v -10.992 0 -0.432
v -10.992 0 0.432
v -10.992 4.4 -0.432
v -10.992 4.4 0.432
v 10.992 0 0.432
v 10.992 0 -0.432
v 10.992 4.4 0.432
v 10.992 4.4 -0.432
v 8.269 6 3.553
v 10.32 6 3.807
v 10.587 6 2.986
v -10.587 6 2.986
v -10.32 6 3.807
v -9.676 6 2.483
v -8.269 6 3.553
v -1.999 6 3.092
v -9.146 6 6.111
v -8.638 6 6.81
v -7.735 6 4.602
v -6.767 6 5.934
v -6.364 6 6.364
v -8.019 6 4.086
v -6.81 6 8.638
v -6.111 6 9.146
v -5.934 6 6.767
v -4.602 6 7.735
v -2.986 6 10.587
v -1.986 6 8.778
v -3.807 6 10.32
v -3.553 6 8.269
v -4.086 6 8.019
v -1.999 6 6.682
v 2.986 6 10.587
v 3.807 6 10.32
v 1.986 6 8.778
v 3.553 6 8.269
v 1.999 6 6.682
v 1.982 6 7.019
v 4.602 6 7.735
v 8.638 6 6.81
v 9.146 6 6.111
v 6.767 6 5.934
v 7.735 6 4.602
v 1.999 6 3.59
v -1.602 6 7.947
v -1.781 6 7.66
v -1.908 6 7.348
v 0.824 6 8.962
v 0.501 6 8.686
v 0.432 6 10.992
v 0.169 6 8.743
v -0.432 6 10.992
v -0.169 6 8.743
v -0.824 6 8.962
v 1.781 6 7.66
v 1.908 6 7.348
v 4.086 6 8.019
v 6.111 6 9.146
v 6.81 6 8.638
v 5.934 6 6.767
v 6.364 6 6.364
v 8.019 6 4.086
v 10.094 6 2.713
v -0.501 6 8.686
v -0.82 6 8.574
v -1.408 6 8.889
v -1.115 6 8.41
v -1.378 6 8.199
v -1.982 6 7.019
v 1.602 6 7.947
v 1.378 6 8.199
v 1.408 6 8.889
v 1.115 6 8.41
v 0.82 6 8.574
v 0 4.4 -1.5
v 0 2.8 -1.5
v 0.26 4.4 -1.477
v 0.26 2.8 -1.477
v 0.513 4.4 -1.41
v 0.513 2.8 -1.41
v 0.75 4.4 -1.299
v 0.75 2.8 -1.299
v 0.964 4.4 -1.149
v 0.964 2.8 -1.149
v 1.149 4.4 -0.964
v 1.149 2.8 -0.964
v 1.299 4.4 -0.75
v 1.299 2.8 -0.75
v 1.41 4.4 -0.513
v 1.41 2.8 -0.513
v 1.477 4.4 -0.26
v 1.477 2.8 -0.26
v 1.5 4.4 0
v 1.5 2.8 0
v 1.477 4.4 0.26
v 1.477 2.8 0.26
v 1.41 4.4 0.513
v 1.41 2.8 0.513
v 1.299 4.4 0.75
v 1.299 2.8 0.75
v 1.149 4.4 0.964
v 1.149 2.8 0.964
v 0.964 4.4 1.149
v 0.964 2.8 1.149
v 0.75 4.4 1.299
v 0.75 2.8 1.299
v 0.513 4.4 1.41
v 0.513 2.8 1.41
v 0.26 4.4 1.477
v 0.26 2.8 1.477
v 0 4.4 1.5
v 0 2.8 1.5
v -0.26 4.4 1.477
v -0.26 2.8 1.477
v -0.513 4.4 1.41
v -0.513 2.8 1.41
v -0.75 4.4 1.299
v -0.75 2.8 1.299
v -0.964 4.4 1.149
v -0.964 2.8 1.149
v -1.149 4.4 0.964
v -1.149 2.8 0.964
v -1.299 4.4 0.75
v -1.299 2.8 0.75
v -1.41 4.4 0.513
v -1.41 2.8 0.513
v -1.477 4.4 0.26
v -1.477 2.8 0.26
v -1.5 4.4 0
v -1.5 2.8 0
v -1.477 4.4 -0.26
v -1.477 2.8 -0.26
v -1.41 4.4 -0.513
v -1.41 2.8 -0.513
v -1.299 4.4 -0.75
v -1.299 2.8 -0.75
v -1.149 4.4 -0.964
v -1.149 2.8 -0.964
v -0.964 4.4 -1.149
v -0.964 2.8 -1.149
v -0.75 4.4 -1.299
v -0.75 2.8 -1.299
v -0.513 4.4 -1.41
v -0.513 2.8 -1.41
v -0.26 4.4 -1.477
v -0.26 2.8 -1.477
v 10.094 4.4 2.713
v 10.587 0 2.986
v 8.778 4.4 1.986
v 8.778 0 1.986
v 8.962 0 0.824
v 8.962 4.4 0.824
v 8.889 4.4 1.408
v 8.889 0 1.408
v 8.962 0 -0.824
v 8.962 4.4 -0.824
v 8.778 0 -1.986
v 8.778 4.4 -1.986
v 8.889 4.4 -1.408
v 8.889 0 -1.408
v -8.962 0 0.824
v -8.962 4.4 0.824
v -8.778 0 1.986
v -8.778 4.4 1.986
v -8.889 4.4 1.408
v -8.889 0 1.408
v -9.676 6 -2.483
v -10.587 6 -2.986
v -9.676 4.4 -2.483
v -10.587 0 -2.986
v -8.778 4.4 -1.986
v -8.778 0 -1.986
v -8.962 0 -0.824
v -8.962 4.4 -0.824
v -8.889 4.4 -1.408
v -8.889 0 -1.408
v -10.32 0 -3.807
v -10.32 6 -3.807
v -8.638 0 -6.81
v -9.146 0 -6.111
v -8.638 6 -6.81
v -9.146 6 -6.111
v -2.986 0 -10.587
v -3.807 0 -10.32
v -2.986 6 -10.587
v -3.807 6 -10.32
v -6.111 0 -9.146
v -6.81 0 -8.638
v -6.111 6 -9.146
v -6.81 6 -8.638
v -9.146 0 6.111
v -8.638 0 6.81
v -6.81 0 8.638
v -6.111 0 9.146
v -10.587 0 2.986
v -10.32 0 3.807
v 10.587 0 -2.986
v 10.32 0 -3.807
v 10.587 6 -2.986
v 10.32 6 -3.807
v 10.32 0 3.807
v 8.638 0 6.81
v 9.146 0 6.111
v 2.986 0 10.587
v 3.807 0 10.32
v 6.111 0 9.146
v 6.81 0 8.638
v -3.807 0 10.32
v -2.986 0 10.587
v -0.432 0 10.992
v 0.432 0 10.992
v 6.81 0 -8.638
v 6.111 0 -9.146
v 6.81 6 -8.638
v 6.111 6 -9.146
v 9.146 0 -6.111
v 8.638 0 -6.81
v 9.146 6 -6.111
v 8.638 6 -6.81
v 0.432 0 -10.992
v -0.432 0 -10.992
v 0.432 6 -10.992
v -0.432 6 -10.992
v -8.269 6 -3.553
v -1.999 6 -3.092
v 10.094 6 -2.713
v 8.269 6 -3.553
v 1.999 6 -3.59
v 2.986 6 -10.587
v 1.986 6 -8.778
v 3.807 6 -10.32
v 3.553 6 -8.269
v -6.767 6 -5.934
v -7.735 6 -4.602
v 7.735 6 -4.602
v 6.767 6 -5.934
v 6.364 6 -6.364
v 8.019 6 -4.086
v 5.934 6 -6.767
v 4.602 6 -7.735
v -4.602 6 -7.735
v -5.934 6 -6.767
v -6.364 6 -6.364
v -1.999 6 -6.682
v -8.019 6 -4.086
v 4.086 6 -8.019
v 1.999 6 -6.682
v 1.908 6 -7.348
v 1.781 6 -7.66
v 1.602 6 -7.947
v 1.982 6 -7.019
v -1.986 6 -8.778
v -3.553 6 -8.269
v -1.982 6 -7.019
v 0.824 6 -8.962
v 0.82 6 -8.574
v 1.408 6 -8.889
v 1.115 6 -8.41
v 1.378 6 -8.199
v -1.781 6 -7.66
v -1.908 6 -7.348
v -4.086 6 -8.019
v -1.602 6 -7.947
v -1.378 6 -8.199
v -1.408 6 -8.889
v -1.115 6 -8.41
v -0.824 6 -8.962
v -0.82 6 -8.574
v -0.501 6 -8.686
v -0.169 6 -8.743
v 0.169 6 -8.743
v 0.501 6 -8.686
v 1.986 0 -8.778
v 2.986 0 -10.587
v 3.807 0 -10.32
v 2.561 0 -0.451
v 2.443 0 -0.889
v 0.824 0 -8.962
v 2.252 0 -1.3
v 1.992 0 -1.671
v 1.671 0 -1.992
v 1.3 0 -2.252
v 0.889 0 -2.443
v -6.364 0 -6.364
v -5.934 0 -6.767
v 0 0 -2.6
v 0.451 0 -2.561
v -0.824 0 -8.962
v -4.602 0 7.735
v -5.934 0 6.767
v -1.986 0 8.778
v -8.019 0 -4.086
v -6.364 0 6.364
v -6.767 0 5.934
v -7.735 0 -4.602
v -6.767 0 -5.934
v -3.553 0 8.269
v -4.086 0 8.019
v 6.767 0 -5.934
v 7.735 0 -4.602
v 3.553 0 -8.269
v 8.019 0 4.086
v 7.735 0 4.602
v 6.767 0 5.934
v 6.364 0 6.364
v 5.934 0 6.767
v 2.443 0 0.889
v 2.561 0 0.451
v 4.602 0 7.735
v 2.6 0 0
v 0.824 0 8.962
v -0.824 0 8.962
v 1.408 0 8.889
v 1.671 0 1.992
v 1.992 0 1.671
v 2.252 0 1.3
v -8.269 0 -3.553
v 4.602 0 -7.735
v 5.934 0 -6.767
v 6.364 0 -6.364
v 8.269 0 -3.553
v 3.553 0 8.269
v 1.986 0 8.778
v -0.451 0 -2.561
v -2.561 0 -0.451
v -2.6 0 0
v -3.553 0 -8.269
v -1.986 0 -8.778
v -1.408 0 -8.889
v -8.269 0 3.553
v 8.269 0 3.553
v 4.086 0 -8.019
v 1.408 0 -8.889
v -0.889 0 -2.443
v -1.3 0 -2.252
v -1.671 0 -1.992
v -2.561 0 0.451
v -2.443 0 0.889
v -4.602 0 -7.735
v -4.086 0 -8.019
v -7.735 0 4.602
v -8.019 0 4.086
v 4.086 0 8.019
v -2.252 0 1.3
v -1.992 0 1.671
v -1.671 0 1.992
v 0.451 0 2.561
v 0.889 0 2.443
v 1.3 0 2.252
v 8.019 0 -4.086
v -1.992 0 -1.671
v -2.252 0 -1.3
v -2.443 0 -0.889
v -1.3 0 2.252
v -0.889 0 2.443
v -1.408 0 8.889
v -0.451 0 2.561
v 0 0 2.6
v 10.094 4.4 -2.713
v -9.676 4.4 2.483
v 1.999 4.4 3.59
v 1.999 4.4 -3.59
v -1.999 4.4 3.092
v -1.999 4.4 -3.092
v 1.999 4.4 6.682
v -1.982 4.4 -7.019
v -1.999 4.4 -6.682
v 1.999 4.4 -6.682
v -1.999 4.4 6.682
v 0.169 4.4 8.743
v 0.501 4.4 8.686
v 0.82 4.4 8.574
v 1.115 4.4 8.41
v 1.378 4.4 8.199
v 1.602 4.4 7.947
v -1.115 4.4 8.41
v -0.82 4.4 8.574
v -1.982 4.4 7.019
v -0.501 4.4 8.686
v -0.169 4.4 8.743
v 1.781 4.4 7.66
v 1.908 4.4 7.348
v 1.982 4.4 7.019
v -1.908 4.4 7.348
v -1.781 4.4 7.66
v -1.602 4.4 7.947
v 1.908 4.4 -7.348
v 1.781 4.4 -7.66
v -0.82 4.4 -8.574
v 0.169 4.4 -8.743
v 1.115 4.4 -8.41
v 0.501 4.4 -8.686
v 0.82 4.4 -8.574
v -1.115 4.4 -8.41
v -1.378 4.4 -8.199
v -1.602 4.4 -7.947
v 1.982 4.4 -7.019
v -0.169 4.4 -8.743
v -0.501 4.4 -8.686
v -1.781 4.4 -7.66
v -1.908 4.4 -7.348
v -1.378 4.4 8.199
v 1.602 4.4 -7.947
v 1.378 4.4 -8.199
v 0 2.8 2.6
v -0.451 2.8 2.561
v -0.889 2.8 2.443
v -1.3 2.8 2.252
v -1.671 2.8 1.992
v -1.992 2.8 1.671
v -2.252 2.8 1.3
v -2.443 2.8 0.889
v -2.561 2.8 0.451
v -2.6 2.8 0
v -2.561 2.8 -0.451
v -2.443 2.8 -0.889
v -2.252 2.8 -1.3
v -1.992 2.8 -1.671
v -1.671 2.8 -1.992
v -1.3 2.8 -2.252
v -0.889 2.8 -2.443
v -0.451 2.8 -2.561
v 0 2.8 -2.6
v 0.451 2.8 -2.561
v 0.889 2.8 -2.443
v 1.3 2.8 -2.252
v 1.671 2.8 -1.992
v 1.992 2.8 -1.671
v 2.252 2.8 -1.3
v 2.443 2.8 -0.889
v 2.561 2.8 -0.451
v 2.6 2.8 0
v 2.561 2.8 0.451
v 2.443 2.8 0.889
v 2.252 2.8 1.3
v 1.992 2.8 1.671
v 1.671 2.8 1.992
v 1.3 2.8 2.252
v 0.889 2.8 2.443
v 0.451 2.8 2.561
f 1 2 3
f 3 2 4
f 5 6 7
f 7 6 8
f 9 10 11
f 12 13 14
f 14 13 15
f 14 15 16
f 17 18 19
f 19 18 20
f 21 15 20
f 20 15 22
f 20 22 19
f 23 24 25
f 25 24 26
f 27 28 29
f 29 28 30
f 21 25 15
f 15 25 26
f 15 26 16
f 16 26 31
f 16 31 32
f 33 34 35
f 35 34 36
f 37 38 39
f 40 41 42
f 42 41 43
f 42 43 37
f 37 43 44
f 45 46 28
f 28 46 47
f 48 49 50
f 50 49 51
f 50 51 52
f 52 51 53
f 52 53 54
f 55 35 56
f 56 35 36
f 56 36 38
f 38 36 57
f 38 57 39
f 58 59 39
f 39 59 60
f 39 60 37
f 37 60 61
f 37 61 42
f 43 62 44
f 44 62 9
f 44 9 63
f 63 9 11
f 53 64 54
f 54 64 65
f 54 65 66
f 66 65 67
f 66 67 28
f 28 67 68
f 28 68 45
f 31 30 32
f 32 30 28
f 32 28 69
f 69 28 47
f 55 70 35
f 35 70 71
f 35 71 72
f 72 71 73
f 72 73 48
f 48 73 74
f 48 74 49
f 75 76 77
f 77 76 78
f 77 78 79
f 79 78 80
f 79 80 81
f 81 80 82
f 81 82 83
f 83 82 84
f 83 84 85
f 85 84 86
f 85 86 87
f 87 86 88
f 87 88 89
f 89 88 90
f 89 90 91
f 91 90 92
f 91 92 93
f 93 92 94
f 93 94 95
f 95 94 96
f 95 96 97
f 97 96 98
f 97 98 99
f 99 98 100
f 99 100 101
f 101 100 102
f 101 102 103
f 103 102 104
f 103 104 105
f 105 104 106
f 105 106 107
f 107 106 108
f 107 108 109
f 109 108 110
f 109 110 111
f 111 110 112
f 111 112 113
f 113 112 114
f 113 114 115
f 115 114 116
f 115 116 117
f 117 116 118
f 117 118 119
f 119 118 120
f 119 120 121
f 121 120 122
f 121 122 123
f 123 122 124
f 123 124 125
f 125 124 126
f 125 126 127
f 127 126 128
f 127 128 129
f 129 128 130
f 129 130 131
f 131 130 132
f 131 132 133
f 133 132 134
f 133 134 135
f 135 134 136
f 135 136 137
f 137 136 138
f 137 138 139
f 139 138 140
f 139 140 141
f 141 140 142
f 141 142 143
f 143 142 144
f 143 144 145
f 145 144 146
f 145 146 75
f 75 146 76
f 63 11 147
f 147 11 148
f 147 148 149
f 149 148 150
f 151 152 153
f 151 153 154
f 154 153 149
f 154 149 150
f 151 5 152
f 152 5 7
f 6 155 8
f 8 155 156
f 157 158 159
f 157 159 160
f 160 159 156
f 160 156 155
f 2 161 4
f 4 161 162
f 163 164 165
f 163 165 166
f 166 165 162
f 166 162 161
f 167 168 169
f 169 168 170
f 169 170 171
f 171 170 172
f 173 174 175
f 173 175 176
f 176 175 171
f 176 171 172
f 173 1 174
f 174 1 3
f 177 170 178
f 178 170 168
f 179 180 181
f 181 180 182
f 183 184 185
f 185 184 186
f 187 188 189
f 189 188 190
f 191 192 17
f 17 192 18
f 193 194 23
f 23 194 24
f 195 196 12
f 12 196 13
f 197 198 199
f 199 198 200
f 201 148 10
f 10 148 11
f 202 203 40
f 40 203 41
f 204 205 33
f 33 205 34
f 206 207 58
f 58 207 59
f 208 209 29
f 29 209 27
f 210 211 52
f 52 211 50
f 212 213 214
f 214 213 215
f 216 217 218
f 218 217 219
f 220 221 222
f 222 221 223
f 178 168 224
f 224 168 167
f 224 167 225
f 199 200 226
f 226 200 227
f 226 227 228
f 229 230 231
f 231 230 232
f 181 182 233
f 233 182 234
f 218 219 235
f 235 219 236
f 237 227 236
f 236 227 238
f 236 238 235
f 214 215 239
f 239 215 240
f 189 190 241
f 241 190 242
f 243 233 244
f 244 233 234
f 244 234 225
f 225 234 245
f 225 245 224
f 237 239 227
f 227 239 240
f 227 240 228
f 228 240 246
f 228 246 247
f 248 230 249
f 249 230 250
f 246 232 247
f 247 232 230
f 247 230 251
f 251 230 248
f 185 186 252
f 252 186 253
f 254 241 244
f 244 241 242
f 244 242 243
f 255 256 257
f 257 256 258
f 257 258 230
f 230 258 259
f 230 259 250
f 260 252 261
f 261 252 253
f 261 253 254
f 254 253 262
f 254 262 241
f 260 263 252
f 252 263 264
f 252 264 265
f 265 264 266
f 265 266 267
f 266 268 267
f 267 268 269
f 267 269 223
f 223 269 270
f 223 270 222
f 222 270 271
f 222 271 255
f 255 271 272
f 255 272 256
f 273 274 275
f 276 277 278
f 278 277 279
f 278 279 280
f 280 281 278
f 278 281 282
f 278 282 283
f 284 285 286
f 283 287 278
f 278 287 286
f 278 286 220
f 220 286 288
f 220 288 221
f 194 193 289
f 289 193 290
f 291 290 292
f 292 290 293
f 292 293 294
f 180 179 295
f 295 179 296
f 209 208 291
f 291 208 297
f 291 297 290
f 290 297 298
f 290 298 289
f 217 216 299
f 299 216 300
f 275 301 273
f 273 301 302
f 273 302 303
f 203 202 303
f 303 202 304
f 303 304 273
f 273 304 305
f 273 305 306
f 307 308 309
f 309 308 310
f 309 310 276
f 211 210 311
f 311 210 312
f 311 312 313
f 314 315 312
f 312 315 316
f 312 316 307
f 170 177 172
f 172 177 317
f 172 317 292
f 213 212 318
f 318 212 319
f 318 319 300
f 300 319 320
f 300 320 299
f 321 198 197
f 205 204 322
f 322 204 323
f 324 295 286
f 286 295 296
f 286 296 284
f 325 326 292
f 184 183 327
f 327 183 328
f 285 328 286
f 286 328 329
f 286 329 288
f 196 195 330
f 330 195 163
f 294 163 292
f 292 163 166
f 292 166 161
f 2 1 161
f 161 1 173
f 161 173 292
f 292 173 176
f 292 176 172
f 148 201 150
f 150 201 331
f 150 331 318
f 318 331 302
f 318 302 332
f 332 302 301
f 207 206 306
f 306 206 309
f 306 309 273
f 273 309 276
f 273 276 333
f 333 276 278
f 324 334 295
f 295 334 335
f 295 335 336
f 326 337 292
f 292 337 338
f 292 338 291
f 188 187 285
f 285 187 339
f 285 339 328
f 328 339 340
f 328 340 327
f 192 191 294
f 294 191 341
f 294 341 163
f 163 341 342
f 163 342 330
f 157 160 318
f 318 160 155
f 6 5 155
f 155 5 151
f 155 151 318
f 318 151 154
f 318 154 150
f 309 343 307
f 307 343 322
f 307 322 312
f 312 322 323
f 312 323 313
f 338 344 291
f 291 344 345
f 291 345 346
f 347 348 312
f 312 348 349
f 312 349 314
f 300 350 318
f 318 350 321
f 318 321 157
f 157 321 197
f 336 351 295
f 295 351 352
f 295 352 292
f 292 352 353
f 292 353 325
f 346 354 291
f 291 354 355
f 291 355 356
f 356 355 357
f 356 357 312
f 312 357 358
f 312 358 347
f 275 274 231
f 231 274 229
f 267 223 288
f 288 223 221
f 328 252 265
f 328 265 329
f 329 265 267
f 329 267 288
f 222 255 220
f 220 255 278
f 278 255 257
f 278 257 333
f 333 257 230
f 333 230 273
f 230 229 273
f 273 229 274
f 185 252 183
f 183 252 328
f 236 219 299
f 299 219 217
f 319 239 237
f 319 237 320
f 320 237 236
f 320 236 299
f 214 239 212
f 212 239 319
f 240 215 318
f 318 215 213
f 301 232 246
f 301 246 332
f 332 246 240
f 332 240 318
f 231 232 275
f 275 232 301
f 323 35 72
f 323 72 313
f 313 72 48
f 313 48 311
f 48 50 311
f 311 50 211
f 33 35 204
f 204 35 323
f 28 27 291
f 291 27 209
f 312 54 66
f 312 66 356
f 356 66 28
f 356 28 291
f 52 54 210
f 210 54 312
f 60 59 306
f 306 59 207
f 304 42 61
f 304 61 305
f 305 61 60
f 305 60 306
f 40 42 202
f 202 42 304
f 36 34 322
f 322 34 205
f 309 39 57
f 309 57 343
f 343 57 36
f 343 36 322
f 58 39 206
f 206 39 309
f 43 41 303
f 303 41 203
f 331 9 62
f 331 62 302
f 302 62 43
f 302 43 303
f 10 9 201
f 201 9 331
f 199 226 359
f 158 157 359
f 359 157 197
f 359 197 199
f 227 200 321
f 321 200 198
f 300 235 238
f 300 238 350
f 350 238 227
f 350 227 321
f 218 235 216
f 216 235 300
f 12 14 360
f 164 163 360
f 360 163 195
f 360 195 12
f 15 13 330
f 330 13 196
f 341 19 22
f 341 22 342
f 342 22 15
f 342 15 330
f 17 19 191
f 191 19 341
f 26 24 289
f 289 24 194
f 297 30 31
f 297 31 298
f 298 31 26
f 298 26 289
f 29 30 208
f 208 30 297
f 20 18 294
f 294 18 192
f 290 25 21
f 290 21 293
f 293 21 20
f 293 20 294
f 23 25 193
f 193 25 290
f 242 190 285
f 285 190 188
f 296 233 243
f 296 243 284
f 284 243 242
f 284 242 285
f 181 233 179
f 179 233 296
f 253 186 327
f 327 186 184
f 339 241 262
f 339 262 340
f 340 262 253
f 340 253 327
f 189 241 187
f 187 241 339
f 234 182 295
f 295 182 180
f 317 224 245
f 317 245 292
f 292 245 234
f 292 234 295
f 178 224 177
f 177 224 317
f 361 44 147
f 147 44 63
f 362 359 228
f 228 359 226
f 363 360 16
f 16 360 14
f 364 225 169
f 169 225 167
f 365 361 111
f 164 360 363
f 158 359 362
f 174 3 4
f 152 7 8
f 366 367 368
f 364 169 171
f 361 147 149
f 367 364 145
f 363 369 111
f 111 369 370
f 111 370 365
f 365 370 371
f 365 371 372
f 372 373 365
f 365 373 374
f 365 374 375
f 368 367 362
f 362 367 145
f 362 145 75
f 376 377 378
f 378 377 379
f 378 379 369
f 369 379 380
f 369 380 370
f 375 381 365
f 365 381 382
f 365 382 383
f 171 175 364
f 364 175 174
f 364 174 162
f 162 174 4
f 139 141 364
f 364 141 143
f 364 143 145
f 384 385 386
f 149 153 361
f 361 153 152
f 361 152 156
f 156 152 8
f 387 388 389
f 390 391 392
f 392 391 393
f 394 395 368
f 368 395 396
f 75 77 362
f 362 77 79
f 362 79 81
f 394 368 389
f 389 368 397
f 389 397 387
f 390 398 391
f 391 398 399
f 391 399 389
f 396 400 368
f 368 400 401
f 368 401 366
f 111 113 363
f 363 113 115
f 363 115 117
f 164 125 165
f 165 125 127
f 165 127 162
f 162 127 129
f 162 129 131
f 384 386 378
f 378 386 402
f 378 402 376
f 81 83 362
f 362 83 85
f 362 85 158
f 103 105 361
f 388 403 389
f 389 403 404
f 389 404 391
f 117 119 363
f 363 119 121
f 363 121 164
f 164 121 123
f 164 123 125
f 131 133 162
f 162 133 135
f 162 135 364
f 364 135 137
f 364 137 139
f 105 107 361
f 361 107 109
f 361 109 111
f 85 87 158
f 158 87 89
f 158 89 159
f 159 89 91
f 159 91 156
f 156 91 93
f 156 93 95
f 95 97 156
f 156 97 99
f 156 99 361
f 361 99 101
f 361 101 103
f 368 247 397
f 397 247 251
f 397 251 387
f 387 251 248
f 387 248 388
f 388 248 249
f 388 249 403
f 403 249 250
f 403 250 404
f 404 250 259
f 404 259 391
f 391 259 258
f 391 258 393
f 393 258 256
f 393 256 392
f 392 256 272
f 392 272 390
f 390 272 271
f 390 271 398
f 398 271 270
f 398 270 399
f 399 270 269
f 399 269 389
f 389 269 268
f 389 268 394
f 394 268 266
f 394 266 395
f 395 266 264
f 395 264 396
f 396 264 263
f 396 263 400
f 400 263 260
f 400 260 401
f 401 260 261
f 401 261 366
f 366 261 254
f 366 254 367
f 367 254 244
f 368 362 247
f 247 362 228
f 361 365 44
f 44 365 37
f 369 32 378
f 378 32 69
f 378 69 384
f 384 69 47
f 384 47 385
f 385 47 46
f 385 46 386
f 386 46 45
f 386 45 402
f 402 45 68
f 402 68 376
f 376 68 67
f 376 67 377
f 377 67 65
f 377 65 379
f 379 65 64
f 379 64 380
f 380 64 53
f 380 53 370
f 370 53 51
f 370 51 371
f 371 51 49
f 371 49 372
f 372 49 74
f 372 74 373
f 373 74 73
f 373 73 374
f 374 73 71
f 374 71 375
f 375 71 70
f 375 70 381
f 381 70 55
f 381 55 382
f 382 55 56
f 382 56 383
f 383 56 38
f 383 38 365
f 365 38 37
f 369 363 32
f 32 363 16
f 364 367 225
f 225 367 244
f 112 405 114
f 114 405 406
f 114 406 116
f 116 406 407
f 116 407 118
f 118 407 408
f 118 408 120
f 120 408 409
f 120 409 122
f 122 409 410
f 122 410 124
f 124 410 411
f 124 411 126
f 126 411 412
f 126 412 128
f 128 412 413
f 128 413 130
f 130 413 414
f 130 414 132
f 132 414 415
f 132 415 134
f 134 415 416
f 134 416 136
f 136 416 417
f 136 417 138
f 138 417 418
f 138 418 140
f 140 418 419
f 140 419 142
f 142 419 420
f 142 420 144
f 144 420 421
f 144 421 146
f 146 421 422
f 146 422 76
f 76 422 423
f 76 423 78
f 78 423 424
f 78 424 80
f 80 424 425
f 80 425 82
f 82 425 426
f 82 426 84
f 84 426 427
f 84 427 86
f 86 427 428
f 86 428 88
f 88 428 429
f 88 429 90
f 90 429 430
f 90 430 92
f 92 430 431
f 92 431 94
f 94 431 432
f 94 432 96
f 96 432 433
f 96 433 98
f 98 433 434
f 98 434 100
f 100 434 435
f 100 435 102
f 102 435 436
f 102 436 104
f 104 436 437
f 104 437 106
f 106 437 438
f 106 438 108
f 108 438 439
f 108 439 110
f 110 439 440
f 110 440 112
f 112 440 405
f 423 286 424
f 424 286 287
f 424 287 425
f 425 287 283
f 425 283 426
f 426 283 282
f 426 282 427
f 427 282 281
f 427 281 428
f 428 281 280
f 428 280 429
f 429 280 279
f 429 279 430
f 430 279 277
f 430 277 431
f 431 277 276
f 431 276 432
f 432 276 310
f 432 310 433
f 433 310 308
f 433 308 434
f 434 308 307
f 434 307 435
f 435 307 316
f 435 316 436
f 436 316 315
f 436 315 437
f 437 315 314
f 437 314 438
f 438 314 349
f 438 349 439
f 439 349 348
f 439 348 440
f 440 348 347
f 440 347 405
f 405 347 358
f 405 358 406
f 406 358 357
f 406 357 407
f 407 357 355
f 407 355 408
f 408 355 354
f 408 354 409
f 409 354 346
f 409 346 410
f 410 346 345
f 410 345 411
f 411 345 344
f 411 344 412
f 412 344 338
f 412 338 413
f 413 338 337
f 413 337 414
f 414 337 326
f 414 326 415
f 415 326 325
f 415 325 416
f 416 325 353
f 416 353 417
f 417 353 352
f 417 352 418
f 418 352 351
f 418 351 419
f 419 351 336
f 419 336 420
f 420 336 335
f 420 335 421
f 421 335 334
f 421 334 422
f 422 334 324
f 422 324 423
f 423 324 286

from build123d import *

# Parameters (mm, degrees)
SKETCH1_R           = 11
SKETCH1_R_2         = 1.5
BOSS_EXTRUDE1_DEPTH = 6
CUT_EXTRUDE1_DEPTH  = 6
CIRPATTERN1_COUNT   = 20
SKETCH3_R           = 1.25
CUT_EXTRUDE2_DEPTH  = 1.6
SKETCH4_R           = 2.6
CUT_EXTRUDE3_DEPTH  = 2.8


with BuildPart() as part:
    # Sketch1 → Boss-Extrude1 (new body)
    with BuildSketch(Plane(origin=(0, 0, 0), x_dir=(1, 0, 0), z_dir=(0, 1, 0))):
        Circle(SKETCH1_R)
        Circle(SKETCH1_R_2, mode=Mode.SUBTRACT)
    extrude(amount=BOSS_EXTRUDE1_DEPTH)

    # Sketch2 → Cut-Extrude1 (cut)
    with BuildSketch(Plane(origin=(0, 6, 0), x_dir=(1, 0, 0), z_dir=(0, 1, 0))):
        with BuildLine():
            Line((-0.823514568, 8.962244348), (-0.431857973, 10.991519399))
            ThreePointArc((-0.431857973, 10.991519399), (0, 11), (0.431857973, 10.991519399))
            Line((0.431857973, 10.991519399), (0.823514568, 8.962244348))
            ThreePointArc((0.823514568, 8.962244348), (1.116310063, 8.930501209), (1.407910185, 8.889195065))
            Line((1.407910185, 8.889195065), (2.683697474, 16.944198993))
            Line((2.683697474, 16.944198993), (-2.683697474, 16.944198993))
            Line((-2.683697474, 16.944198993), (-1.407910185, 8.889195065))
            ThreePointArc((-1.407910185, 8.889195065), (-1.116310063, 8.930501209), (-0.823514568, 8.962244348))
        make_face()
    cut_extrude1 = extrude(amount=-CUT_EXTRUDE1_DEPTH, mode=Mode.SUBTRACT)

    # CirPattern1: Cut-Extrude1 ×20 about axis
    cirpattern1_axis = Axis((0, 0, 0), (0, 1, 0))
    for i in range(1, CIRPATTERN1_COUNT):
        add(cut_extrude1.rotate(cirpattern1_axis, i * 360 / CIRPATTERN1_COUNT), mode=Mode.SUBTRACT)

    # Sketch3 → Cut-Extrude2 (cut)
    with BuildSketch(Plane(origin=(0, 6, 0), x_dir=(1, 0, 0), z_dir=(0, 1, 0))):
        with BuildLine():
            Line((-1.99882942, 6.681582528), (-1.99882942, 3.092373279))
            Line((-1.99882942, 3.092373279), (-15.754015296, 1.999995968))
            ThreePointArc((-15.754015296, 1.999995968), (-17.749999999, 0), (-15.754015296, -1.999995968))
            Line((-15.754015296, -1.999995968), (-1.99882942, -3.092373279))
            Line((-1.99882942, -3.092373279), (-1.99882942, -6.681582528))
            ThreePointArc((-1.99882942, -6.681582528), (0, -8.75), (1.99882942, -6.681582528))
            Line((1.99882942, -6.681582528), (1.99882942, -3.589755709))
            Line((1.99882942, -3.589755709), (15.756121614, -2.099991078))
            ThreePointArc((15.756121614, -2.099991078), (17.85, 0), (15.756121614, 2.099991078))
            Line((15.756121614, 2.099991078), (1.99882942, 3.589755709))
            Line((1.99882942, 3.589755709), (1.99882942, 6.681582528))
            ThreePointArc((1.99882942, 6.681582528), (0, 8.75), (-1.99882942, 6.681582528))
        make_face()
        Circle(SKETCH3_R, mode=Mode.SUBTRACT)
    extrude(amount=-CUT_EXTRUDE2_DEPTH, mode=Mode.SUBTRACT)

    # Sketch4 → Cut-Extrude3 (cut)
    with BuildSketch(Plane.XZ):
        Circle(SKETCH4_R)
    extrude(amount=-CUT_EXTRUDE3_DEPTH, mode=Mode.SUBTRACT)


solid = part.part
